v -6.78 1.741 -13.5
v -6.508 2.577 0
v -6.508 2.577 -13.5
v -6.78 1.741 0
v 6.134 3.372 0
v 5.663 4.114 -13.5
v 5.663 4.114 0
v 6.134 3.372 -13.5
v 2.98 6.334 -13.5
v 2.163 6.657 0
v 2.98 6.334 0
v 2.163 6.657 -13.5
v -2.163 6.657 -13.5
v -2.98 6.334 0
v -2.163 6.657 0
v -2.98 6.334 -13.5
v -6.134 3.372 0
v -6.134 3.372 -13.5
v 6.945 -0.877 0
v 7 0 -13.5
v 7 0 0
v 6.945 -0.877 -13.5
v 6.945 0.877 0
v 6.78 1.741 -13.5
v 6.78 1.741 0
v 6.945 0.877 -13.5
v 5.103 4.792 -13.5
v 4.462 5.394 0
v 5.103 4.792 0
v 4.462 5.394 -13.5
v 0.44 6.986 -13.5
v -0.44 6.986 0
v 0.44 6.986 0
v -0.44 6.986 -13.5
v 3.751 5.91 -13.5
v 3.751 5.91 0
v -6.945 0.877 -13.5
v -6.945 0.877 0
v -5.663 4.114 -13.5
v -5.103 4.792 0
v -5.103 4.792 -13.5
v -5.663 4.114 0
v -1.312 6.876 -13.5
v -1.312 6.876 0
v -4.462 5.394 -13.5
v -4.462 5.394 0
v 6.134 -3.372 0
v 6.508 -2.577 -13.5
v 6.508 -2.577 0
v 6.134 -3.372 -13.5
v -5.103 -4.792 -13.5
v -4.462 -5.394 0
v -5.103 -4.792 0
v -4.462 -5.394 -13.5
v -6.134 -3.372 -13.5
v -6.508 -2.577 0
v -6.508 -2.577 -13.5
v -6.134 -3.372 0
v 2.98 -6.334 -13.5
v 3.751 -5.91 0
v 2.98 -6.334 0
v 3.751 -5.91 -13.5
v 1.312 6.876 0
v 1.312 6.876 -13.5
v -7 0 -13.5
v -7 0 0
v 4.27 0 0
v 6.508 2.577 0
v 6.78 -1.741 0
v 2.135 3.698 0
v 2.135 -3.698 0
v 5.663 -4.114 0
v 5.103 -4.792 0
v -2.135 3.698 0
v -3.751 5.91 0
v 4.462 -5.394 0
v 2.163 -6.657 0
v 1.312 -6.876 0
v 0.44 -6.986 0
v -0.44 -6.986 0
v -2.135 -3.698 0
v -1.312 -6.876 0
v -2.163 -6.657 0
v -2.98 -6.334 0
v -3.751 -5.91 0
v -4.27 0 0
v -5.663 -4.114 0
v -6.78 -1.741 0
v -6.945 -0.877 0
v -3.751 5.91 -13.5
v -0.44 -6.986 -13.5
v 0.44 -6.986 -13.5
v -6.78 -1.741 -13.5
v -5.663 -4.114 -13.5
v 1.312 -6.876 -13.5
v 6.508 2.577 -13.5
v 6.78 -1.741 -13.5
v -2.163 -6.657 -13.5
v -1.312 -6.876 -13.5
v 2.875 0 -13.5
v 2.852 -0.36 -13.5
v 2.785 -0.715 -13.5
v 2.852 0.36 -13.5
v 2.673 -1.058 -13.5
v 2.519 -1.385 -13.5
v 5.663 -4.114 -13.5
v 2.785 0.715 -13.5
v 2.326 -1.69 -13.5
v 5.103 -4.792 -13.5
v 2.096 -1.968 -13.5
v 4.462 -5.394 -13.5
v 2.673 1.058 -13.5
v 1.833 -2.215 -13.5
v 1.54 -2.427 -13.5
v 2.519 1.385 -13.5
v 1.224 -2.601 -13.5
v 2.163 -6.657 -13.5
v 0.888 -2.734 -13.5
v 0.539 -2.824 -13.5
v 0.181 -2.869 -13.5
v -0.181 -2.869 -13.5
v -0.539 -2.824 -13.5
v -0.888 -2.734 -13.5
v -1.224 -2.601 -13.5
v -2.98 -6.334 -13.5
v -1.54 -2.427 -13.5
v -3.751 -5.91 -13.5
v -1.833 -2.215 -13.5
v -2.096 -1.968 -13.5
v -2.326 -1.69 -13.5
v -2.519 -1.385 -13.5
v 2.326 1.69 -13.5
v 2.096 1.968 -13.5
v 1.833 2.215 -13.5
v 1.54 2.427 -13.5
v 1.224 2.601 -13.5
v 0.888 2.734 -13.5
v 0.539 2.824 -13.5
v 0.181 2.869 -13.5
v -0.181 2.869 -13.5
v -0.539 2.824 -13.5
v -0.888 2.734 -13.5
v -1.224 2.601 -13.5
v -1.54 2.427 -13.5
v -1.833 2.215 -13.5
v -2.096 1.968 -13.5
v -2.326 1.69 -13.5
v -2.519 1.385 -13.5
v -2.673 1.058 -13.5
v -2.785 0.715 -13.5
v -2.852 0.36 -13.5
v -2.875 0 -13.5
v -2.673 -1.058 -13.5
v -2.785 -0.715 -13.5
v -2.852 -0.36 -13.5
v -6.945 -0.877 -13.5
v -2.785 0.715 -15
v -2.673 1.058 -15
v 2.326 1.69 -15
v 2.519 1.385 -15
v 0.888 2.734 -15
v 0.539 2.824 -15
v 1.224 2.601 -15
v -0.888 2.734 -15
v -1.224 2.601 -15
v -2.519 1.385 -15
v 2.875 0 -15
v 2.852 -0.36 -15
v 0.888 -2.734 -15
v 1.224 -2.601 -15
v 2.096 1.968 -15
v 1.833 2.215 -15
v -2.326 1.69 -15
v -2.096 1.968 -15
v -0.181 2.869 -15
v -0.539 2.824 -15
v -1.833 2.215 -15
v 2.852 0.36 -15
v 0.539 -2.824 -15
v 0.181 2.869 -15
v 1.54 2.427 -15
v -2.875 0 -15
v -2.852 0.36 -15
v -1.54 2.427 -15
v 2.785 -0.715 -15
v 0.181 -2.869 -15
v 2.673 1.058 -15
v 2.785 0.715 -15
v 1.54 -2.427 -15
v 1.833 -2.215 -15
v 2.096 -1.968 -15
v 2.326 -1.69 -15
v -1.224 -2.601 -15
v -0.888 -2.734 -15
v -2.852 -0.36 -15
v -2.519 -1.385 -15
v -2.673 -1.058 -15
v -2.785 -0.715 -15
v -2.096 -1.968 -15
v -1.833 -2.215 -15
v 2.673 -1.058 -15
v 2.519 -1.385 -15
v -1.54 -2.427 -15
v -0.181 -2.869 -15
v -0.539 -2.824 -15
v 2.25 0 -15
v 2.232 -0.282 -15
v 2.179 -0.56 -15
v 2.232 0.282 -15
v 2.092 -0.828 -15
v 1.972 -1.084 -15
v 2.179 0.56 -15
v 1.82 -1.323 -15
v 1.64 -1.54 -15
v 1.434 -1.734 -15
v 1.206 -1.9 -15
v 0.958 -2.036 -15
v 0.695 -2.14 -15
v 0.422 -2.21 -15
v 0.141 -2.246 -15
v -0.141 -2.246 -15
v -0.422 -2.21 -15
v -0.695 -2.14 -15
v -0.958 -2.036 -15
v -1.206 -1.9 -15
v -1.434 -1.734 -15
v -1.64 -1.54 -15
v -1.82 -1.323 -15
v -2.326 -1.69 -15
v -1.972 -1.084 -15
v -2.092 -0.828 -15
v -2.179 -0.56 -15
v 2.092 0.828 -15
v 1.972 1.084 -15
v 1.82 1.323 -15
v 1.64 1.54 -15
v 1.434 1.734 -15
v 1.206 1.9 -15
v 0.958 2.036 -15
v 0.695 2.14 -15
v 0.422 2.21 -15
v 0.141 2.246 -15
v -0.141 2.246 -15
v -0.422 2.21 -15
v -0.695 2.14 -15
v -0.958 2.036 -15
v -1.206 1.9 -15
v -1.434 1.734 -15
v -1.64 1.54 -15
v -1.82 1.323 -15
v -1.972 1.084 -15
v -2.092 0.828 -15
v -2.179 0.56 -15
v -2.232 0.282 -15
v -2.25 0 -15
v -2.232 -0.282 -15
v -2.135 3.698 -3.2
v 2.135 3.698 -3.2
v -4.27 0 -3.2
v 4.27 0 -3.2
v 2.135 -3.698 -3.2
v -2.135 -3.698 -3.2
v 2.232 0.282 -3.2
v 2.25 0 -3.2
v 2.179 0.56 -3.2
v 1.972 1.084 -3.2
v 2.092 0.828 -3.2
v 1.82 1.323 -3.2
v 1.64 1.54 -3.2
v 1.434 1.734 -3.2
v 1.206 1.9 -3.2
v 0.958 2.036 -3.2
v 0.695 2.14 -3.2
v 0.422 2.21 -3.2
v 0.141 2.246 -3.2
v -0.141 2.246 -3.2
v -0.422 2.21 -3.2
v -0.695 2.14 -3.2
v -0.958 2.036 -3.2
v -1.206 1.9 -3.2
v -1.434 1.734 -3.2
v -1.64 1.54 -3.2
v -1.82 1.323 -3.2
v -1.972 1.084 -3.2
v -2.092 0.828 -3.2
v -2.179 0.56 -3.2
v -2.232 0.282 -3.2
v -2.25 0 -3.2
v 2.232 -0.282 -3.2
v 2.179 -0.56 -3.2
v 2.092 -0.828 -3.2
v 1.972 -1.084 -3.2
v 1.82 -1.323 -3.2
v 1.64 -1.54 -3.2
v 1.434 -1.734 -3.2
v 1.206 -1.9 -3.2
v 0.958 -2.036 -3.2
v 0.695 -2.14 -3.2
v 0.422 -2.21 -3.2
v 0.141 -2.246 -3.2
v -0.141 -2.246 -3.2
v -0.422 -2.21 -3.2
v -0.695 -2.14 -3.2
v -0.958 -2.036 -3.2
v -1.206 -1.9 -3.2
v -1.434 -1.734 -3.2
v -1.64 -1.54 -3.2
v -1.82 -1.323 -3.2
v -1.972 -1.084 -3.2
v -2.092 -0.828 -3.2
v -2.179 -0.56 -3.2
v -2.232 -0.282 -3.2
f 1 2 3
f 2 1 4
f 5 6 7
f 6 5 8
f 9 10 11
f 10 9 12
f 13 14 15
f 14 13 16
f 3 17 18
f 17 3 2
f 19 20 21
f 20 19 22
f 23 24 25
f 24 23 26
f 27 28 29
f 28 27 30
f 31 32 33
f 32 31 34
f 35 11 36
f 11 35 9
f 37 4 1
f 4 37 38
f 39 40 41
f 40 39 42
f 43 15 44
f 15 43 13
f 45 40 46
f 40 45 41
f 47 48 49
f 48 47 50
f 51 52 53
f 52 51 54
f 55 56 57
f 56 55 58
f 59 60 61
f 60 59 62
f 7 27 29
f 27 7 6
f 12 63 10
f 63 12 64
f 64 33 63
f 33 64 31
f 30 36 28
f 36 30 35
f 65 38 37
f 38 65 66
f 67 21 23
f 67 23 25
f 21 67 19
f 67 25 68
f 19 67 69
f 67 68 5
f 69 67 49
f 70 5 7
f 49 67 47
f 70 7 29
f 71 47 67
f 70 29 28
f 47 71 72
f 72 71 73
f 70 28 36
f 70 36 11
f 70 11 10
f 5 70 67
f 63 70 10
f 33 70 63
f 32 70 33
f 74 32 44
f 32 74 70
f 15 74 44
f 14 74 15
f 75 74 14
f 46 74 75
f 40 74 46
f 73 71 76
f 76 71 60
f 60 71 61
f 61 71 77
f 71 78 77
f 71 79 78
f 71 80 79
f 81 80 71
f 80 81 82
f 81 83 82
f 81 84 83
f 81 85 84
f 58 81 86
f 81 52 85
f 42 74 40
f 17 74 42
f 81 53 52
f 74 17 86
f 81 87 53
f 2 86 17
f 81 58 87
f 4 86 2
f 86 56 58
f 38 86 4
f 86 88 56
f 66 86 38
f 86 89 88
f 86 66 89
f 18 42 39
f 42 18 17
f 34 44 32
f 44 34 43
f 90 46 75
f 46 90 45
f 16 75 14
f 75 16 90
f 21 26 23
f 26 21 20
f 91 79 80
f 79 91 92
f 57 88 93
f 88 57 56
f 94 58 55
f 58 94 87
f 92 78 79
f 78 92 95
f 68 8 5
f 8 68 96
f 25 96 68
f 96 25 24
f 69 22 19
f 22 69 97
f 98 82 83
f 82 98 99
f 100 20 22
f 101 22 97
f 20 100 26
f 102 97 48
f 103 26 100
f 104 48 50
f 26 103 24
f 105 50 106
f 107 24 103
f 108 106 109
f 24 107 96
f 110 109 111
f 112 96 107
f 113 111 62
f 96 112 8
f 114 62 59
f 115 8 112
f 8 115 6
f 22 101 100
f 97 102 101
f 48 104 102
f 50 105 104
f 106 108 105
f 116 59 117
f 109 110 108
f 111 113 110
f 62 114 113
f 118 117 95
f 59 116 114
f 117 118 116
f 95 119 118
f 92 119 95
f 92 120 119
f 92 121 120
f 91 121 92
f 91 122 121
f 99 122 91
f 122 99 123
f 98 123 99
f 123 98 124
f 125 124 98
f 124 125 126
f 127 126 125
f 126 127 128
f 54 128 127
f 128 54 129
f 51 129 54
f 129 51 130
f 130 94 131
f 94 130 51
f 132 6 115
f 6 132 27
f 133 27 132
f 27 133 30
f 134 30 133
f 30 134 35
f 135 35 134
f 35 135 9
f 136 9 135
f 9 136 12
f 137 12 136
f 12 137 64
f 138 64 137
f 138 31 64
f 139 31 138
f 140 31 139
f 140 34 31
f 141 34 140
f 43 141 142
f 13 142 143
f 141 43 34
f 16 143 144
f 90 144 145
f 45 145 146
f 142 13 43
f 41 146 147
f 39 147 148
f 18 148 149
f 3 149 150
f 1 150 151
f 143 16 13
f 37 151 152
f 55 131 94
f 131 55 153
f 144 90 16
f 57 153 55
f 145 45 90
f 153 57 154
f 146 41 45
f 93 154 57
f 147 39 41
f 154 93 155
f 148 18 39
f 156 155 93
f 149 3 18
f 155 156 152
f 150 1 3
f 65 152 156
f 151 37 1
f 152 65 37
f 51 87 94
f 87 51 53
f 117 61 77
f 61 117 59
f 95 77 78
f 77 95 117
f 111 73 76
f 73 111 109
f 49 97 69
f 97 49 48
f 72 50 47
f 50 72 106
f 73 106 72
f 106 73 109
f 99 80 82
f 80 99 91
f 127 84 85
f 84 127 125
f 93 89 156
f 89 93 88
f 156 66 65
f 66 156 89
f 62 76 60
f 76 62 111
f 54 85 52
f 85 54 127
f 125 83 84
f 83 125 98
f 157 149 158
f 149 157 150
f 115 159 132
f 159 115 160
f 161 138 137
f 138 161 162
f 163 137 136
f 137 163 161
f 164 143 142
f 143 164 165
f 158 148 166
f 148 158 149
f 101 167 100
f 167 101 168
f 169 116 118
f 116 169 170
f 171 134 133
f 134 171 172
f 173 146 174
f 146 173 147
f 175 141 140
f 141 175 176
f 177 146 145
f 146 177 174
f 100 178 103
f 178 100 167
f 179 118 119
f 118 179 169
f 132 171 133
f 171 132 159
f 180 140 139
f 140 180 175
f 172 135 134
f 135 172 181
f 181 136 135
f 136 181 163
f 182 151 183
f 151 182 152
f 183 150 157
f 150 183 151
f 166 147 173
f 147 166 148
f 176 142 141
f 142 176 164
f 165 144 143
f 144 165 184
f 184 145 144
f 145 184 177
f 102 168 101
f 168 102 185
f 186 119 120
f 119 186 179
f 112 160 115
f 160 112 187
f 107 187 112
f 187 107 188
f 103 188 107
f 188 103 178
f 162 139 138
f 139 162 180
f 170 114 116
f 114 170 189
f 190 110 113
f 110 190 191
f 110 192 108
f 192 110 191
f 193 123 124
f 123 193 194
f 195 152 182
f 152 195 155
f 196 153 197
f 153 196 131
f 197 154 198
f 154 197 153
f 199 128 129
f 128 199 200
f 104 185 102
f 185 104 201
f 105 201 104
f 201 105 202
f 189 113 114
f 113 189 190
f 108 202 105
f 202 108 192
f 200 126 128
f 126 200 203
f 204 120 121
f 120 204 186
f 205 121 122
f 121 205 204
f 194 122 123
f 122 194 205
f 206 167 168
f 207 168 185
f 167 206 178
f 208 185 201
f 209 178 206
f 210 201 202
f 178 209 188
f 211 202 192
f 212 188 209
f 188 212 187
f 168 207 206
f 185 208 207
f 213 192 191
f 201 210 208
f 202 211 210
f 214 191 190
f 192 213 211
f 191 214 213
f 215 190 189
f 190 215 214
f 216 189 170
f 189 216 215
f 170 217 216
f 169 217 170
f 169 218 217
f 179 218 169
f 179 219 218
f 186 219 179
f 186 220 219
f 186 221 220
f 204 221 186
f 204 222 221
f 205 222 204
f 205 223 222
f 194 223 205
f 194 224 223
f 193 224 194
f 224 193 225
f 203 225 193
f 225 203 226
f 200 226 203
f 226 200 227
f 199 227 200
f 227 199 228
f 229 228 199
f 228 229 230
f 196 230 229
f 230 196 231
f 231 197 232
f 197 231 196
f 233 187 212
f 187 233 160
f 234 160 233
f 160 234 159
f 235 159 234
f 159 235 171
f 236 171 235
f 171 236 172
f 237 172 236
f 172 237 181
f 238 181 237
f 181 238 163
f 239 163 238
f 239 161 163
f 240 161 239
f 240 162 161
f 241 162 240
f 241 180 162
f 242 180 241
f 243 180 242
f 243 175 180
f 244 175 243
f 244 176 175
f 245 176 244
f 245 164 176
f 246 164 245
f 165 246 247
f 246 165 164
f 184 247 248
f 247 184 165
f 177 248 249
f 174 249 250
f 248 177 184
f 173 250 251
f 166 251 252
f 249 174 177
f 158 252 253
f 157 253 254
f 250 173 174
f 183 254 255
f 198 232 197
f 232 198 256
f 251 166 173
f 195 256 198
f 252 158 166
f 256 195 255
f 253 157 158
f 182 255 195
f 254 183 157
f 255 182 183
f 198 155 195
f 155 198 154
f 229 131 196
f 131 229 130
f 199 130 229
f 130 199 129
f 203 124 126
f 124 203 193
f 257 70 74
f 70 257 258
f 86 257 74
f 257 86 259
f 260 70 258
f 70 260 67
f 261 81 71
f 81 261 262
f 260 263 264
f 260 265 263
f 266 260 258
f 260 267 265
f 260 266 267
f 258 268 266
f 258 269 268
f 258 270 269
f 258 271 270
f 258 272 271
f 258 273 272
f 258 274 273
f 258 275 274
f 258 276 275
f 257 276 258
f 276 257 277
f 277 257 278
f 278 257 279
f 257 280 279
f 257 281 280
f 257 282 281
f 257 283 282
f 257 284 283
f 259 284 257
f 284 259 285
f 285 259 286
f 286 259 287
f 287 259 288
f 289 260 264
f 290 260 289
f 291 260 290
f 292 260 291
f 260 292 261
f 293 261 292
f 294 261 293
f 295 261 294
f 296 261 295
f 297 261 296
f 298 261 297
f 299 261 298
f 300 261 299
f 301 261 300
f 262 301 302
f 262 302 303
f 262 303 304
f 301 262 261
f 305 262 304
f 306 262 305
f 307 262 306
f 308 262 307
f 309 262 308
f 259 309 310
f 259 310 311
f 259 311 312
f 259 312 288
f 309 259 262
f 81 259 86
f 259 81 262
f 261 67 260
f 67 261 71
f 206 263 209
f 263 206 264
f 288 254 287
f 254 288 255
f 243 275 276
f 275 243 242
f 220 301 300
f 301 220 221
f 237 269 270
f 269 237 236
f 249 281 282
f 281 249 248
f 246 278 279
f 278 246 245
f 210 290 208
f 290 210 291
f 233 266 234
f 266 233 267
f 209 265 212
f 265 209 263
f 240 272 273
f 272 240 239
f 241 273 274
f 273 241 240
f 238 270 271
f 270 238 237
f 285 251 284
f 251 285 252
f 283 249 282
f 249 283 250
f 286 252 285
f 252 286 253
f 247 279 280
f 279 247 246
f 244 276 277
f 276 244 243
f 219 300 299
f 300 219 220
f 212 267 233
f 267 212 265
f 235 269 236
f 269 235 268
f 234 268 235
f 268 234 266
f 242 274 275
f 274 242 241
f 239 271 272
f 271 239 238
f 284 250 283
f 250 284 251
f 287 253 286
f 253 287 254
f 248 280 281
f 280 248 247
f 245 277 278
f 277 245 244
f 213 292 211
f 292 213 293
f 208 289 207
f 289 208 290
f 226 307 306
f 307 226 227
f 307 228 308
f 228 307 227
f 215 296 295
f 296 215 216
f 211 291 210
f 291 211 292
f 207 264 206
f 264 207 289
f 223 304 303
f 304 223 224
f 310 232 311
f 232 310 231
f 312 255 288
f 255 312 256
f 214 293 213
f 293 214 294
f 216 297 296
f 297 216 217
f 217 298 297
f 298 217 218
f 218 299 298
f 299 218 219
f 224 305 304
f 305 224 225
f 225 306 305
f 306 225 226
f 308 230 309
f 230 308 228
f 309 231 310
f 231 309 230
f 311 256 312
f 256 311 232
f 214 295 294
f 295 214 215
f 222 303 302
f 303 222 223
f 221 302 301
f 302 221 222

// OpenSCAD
$fn = 50;


difference() {
	union() {
		translate(v = [0, 0, -13.5000000000]) {
			cylinder(h = 13.5000000000, r = 7.0000000000);
		}
		#translate(v = [0, 0, -15.0000000000]) {
			cylinder(h = 15, r = 2.8750000000);
		}
	}
	union() {
		translate(v = [0, 0, 0]) {
			rotate(a = [0, 0, 0]) {
				difference() {
					union() {
						translate(v = [0, 0, -3.2000000000]) {
							linear_extrude(height = 3.2000000000) {
								polygon(points = [[4.2698000000, 0.0000000000], [2.1349000000, 3.6977552691], [-2.1349000000, 3.6977552691], [-4.2698000000, 0.0000000000], [-2.1349000000, -3.6977552691], [2.1349000000, -3.6977552691]]);
							}
						}
					}
					union();
				}
			}
		}
		#translate(v = [0, 0, -100.0000000000]) {
			cylinder(h = 200, r = 2.2500000000);
		}
	}
}
